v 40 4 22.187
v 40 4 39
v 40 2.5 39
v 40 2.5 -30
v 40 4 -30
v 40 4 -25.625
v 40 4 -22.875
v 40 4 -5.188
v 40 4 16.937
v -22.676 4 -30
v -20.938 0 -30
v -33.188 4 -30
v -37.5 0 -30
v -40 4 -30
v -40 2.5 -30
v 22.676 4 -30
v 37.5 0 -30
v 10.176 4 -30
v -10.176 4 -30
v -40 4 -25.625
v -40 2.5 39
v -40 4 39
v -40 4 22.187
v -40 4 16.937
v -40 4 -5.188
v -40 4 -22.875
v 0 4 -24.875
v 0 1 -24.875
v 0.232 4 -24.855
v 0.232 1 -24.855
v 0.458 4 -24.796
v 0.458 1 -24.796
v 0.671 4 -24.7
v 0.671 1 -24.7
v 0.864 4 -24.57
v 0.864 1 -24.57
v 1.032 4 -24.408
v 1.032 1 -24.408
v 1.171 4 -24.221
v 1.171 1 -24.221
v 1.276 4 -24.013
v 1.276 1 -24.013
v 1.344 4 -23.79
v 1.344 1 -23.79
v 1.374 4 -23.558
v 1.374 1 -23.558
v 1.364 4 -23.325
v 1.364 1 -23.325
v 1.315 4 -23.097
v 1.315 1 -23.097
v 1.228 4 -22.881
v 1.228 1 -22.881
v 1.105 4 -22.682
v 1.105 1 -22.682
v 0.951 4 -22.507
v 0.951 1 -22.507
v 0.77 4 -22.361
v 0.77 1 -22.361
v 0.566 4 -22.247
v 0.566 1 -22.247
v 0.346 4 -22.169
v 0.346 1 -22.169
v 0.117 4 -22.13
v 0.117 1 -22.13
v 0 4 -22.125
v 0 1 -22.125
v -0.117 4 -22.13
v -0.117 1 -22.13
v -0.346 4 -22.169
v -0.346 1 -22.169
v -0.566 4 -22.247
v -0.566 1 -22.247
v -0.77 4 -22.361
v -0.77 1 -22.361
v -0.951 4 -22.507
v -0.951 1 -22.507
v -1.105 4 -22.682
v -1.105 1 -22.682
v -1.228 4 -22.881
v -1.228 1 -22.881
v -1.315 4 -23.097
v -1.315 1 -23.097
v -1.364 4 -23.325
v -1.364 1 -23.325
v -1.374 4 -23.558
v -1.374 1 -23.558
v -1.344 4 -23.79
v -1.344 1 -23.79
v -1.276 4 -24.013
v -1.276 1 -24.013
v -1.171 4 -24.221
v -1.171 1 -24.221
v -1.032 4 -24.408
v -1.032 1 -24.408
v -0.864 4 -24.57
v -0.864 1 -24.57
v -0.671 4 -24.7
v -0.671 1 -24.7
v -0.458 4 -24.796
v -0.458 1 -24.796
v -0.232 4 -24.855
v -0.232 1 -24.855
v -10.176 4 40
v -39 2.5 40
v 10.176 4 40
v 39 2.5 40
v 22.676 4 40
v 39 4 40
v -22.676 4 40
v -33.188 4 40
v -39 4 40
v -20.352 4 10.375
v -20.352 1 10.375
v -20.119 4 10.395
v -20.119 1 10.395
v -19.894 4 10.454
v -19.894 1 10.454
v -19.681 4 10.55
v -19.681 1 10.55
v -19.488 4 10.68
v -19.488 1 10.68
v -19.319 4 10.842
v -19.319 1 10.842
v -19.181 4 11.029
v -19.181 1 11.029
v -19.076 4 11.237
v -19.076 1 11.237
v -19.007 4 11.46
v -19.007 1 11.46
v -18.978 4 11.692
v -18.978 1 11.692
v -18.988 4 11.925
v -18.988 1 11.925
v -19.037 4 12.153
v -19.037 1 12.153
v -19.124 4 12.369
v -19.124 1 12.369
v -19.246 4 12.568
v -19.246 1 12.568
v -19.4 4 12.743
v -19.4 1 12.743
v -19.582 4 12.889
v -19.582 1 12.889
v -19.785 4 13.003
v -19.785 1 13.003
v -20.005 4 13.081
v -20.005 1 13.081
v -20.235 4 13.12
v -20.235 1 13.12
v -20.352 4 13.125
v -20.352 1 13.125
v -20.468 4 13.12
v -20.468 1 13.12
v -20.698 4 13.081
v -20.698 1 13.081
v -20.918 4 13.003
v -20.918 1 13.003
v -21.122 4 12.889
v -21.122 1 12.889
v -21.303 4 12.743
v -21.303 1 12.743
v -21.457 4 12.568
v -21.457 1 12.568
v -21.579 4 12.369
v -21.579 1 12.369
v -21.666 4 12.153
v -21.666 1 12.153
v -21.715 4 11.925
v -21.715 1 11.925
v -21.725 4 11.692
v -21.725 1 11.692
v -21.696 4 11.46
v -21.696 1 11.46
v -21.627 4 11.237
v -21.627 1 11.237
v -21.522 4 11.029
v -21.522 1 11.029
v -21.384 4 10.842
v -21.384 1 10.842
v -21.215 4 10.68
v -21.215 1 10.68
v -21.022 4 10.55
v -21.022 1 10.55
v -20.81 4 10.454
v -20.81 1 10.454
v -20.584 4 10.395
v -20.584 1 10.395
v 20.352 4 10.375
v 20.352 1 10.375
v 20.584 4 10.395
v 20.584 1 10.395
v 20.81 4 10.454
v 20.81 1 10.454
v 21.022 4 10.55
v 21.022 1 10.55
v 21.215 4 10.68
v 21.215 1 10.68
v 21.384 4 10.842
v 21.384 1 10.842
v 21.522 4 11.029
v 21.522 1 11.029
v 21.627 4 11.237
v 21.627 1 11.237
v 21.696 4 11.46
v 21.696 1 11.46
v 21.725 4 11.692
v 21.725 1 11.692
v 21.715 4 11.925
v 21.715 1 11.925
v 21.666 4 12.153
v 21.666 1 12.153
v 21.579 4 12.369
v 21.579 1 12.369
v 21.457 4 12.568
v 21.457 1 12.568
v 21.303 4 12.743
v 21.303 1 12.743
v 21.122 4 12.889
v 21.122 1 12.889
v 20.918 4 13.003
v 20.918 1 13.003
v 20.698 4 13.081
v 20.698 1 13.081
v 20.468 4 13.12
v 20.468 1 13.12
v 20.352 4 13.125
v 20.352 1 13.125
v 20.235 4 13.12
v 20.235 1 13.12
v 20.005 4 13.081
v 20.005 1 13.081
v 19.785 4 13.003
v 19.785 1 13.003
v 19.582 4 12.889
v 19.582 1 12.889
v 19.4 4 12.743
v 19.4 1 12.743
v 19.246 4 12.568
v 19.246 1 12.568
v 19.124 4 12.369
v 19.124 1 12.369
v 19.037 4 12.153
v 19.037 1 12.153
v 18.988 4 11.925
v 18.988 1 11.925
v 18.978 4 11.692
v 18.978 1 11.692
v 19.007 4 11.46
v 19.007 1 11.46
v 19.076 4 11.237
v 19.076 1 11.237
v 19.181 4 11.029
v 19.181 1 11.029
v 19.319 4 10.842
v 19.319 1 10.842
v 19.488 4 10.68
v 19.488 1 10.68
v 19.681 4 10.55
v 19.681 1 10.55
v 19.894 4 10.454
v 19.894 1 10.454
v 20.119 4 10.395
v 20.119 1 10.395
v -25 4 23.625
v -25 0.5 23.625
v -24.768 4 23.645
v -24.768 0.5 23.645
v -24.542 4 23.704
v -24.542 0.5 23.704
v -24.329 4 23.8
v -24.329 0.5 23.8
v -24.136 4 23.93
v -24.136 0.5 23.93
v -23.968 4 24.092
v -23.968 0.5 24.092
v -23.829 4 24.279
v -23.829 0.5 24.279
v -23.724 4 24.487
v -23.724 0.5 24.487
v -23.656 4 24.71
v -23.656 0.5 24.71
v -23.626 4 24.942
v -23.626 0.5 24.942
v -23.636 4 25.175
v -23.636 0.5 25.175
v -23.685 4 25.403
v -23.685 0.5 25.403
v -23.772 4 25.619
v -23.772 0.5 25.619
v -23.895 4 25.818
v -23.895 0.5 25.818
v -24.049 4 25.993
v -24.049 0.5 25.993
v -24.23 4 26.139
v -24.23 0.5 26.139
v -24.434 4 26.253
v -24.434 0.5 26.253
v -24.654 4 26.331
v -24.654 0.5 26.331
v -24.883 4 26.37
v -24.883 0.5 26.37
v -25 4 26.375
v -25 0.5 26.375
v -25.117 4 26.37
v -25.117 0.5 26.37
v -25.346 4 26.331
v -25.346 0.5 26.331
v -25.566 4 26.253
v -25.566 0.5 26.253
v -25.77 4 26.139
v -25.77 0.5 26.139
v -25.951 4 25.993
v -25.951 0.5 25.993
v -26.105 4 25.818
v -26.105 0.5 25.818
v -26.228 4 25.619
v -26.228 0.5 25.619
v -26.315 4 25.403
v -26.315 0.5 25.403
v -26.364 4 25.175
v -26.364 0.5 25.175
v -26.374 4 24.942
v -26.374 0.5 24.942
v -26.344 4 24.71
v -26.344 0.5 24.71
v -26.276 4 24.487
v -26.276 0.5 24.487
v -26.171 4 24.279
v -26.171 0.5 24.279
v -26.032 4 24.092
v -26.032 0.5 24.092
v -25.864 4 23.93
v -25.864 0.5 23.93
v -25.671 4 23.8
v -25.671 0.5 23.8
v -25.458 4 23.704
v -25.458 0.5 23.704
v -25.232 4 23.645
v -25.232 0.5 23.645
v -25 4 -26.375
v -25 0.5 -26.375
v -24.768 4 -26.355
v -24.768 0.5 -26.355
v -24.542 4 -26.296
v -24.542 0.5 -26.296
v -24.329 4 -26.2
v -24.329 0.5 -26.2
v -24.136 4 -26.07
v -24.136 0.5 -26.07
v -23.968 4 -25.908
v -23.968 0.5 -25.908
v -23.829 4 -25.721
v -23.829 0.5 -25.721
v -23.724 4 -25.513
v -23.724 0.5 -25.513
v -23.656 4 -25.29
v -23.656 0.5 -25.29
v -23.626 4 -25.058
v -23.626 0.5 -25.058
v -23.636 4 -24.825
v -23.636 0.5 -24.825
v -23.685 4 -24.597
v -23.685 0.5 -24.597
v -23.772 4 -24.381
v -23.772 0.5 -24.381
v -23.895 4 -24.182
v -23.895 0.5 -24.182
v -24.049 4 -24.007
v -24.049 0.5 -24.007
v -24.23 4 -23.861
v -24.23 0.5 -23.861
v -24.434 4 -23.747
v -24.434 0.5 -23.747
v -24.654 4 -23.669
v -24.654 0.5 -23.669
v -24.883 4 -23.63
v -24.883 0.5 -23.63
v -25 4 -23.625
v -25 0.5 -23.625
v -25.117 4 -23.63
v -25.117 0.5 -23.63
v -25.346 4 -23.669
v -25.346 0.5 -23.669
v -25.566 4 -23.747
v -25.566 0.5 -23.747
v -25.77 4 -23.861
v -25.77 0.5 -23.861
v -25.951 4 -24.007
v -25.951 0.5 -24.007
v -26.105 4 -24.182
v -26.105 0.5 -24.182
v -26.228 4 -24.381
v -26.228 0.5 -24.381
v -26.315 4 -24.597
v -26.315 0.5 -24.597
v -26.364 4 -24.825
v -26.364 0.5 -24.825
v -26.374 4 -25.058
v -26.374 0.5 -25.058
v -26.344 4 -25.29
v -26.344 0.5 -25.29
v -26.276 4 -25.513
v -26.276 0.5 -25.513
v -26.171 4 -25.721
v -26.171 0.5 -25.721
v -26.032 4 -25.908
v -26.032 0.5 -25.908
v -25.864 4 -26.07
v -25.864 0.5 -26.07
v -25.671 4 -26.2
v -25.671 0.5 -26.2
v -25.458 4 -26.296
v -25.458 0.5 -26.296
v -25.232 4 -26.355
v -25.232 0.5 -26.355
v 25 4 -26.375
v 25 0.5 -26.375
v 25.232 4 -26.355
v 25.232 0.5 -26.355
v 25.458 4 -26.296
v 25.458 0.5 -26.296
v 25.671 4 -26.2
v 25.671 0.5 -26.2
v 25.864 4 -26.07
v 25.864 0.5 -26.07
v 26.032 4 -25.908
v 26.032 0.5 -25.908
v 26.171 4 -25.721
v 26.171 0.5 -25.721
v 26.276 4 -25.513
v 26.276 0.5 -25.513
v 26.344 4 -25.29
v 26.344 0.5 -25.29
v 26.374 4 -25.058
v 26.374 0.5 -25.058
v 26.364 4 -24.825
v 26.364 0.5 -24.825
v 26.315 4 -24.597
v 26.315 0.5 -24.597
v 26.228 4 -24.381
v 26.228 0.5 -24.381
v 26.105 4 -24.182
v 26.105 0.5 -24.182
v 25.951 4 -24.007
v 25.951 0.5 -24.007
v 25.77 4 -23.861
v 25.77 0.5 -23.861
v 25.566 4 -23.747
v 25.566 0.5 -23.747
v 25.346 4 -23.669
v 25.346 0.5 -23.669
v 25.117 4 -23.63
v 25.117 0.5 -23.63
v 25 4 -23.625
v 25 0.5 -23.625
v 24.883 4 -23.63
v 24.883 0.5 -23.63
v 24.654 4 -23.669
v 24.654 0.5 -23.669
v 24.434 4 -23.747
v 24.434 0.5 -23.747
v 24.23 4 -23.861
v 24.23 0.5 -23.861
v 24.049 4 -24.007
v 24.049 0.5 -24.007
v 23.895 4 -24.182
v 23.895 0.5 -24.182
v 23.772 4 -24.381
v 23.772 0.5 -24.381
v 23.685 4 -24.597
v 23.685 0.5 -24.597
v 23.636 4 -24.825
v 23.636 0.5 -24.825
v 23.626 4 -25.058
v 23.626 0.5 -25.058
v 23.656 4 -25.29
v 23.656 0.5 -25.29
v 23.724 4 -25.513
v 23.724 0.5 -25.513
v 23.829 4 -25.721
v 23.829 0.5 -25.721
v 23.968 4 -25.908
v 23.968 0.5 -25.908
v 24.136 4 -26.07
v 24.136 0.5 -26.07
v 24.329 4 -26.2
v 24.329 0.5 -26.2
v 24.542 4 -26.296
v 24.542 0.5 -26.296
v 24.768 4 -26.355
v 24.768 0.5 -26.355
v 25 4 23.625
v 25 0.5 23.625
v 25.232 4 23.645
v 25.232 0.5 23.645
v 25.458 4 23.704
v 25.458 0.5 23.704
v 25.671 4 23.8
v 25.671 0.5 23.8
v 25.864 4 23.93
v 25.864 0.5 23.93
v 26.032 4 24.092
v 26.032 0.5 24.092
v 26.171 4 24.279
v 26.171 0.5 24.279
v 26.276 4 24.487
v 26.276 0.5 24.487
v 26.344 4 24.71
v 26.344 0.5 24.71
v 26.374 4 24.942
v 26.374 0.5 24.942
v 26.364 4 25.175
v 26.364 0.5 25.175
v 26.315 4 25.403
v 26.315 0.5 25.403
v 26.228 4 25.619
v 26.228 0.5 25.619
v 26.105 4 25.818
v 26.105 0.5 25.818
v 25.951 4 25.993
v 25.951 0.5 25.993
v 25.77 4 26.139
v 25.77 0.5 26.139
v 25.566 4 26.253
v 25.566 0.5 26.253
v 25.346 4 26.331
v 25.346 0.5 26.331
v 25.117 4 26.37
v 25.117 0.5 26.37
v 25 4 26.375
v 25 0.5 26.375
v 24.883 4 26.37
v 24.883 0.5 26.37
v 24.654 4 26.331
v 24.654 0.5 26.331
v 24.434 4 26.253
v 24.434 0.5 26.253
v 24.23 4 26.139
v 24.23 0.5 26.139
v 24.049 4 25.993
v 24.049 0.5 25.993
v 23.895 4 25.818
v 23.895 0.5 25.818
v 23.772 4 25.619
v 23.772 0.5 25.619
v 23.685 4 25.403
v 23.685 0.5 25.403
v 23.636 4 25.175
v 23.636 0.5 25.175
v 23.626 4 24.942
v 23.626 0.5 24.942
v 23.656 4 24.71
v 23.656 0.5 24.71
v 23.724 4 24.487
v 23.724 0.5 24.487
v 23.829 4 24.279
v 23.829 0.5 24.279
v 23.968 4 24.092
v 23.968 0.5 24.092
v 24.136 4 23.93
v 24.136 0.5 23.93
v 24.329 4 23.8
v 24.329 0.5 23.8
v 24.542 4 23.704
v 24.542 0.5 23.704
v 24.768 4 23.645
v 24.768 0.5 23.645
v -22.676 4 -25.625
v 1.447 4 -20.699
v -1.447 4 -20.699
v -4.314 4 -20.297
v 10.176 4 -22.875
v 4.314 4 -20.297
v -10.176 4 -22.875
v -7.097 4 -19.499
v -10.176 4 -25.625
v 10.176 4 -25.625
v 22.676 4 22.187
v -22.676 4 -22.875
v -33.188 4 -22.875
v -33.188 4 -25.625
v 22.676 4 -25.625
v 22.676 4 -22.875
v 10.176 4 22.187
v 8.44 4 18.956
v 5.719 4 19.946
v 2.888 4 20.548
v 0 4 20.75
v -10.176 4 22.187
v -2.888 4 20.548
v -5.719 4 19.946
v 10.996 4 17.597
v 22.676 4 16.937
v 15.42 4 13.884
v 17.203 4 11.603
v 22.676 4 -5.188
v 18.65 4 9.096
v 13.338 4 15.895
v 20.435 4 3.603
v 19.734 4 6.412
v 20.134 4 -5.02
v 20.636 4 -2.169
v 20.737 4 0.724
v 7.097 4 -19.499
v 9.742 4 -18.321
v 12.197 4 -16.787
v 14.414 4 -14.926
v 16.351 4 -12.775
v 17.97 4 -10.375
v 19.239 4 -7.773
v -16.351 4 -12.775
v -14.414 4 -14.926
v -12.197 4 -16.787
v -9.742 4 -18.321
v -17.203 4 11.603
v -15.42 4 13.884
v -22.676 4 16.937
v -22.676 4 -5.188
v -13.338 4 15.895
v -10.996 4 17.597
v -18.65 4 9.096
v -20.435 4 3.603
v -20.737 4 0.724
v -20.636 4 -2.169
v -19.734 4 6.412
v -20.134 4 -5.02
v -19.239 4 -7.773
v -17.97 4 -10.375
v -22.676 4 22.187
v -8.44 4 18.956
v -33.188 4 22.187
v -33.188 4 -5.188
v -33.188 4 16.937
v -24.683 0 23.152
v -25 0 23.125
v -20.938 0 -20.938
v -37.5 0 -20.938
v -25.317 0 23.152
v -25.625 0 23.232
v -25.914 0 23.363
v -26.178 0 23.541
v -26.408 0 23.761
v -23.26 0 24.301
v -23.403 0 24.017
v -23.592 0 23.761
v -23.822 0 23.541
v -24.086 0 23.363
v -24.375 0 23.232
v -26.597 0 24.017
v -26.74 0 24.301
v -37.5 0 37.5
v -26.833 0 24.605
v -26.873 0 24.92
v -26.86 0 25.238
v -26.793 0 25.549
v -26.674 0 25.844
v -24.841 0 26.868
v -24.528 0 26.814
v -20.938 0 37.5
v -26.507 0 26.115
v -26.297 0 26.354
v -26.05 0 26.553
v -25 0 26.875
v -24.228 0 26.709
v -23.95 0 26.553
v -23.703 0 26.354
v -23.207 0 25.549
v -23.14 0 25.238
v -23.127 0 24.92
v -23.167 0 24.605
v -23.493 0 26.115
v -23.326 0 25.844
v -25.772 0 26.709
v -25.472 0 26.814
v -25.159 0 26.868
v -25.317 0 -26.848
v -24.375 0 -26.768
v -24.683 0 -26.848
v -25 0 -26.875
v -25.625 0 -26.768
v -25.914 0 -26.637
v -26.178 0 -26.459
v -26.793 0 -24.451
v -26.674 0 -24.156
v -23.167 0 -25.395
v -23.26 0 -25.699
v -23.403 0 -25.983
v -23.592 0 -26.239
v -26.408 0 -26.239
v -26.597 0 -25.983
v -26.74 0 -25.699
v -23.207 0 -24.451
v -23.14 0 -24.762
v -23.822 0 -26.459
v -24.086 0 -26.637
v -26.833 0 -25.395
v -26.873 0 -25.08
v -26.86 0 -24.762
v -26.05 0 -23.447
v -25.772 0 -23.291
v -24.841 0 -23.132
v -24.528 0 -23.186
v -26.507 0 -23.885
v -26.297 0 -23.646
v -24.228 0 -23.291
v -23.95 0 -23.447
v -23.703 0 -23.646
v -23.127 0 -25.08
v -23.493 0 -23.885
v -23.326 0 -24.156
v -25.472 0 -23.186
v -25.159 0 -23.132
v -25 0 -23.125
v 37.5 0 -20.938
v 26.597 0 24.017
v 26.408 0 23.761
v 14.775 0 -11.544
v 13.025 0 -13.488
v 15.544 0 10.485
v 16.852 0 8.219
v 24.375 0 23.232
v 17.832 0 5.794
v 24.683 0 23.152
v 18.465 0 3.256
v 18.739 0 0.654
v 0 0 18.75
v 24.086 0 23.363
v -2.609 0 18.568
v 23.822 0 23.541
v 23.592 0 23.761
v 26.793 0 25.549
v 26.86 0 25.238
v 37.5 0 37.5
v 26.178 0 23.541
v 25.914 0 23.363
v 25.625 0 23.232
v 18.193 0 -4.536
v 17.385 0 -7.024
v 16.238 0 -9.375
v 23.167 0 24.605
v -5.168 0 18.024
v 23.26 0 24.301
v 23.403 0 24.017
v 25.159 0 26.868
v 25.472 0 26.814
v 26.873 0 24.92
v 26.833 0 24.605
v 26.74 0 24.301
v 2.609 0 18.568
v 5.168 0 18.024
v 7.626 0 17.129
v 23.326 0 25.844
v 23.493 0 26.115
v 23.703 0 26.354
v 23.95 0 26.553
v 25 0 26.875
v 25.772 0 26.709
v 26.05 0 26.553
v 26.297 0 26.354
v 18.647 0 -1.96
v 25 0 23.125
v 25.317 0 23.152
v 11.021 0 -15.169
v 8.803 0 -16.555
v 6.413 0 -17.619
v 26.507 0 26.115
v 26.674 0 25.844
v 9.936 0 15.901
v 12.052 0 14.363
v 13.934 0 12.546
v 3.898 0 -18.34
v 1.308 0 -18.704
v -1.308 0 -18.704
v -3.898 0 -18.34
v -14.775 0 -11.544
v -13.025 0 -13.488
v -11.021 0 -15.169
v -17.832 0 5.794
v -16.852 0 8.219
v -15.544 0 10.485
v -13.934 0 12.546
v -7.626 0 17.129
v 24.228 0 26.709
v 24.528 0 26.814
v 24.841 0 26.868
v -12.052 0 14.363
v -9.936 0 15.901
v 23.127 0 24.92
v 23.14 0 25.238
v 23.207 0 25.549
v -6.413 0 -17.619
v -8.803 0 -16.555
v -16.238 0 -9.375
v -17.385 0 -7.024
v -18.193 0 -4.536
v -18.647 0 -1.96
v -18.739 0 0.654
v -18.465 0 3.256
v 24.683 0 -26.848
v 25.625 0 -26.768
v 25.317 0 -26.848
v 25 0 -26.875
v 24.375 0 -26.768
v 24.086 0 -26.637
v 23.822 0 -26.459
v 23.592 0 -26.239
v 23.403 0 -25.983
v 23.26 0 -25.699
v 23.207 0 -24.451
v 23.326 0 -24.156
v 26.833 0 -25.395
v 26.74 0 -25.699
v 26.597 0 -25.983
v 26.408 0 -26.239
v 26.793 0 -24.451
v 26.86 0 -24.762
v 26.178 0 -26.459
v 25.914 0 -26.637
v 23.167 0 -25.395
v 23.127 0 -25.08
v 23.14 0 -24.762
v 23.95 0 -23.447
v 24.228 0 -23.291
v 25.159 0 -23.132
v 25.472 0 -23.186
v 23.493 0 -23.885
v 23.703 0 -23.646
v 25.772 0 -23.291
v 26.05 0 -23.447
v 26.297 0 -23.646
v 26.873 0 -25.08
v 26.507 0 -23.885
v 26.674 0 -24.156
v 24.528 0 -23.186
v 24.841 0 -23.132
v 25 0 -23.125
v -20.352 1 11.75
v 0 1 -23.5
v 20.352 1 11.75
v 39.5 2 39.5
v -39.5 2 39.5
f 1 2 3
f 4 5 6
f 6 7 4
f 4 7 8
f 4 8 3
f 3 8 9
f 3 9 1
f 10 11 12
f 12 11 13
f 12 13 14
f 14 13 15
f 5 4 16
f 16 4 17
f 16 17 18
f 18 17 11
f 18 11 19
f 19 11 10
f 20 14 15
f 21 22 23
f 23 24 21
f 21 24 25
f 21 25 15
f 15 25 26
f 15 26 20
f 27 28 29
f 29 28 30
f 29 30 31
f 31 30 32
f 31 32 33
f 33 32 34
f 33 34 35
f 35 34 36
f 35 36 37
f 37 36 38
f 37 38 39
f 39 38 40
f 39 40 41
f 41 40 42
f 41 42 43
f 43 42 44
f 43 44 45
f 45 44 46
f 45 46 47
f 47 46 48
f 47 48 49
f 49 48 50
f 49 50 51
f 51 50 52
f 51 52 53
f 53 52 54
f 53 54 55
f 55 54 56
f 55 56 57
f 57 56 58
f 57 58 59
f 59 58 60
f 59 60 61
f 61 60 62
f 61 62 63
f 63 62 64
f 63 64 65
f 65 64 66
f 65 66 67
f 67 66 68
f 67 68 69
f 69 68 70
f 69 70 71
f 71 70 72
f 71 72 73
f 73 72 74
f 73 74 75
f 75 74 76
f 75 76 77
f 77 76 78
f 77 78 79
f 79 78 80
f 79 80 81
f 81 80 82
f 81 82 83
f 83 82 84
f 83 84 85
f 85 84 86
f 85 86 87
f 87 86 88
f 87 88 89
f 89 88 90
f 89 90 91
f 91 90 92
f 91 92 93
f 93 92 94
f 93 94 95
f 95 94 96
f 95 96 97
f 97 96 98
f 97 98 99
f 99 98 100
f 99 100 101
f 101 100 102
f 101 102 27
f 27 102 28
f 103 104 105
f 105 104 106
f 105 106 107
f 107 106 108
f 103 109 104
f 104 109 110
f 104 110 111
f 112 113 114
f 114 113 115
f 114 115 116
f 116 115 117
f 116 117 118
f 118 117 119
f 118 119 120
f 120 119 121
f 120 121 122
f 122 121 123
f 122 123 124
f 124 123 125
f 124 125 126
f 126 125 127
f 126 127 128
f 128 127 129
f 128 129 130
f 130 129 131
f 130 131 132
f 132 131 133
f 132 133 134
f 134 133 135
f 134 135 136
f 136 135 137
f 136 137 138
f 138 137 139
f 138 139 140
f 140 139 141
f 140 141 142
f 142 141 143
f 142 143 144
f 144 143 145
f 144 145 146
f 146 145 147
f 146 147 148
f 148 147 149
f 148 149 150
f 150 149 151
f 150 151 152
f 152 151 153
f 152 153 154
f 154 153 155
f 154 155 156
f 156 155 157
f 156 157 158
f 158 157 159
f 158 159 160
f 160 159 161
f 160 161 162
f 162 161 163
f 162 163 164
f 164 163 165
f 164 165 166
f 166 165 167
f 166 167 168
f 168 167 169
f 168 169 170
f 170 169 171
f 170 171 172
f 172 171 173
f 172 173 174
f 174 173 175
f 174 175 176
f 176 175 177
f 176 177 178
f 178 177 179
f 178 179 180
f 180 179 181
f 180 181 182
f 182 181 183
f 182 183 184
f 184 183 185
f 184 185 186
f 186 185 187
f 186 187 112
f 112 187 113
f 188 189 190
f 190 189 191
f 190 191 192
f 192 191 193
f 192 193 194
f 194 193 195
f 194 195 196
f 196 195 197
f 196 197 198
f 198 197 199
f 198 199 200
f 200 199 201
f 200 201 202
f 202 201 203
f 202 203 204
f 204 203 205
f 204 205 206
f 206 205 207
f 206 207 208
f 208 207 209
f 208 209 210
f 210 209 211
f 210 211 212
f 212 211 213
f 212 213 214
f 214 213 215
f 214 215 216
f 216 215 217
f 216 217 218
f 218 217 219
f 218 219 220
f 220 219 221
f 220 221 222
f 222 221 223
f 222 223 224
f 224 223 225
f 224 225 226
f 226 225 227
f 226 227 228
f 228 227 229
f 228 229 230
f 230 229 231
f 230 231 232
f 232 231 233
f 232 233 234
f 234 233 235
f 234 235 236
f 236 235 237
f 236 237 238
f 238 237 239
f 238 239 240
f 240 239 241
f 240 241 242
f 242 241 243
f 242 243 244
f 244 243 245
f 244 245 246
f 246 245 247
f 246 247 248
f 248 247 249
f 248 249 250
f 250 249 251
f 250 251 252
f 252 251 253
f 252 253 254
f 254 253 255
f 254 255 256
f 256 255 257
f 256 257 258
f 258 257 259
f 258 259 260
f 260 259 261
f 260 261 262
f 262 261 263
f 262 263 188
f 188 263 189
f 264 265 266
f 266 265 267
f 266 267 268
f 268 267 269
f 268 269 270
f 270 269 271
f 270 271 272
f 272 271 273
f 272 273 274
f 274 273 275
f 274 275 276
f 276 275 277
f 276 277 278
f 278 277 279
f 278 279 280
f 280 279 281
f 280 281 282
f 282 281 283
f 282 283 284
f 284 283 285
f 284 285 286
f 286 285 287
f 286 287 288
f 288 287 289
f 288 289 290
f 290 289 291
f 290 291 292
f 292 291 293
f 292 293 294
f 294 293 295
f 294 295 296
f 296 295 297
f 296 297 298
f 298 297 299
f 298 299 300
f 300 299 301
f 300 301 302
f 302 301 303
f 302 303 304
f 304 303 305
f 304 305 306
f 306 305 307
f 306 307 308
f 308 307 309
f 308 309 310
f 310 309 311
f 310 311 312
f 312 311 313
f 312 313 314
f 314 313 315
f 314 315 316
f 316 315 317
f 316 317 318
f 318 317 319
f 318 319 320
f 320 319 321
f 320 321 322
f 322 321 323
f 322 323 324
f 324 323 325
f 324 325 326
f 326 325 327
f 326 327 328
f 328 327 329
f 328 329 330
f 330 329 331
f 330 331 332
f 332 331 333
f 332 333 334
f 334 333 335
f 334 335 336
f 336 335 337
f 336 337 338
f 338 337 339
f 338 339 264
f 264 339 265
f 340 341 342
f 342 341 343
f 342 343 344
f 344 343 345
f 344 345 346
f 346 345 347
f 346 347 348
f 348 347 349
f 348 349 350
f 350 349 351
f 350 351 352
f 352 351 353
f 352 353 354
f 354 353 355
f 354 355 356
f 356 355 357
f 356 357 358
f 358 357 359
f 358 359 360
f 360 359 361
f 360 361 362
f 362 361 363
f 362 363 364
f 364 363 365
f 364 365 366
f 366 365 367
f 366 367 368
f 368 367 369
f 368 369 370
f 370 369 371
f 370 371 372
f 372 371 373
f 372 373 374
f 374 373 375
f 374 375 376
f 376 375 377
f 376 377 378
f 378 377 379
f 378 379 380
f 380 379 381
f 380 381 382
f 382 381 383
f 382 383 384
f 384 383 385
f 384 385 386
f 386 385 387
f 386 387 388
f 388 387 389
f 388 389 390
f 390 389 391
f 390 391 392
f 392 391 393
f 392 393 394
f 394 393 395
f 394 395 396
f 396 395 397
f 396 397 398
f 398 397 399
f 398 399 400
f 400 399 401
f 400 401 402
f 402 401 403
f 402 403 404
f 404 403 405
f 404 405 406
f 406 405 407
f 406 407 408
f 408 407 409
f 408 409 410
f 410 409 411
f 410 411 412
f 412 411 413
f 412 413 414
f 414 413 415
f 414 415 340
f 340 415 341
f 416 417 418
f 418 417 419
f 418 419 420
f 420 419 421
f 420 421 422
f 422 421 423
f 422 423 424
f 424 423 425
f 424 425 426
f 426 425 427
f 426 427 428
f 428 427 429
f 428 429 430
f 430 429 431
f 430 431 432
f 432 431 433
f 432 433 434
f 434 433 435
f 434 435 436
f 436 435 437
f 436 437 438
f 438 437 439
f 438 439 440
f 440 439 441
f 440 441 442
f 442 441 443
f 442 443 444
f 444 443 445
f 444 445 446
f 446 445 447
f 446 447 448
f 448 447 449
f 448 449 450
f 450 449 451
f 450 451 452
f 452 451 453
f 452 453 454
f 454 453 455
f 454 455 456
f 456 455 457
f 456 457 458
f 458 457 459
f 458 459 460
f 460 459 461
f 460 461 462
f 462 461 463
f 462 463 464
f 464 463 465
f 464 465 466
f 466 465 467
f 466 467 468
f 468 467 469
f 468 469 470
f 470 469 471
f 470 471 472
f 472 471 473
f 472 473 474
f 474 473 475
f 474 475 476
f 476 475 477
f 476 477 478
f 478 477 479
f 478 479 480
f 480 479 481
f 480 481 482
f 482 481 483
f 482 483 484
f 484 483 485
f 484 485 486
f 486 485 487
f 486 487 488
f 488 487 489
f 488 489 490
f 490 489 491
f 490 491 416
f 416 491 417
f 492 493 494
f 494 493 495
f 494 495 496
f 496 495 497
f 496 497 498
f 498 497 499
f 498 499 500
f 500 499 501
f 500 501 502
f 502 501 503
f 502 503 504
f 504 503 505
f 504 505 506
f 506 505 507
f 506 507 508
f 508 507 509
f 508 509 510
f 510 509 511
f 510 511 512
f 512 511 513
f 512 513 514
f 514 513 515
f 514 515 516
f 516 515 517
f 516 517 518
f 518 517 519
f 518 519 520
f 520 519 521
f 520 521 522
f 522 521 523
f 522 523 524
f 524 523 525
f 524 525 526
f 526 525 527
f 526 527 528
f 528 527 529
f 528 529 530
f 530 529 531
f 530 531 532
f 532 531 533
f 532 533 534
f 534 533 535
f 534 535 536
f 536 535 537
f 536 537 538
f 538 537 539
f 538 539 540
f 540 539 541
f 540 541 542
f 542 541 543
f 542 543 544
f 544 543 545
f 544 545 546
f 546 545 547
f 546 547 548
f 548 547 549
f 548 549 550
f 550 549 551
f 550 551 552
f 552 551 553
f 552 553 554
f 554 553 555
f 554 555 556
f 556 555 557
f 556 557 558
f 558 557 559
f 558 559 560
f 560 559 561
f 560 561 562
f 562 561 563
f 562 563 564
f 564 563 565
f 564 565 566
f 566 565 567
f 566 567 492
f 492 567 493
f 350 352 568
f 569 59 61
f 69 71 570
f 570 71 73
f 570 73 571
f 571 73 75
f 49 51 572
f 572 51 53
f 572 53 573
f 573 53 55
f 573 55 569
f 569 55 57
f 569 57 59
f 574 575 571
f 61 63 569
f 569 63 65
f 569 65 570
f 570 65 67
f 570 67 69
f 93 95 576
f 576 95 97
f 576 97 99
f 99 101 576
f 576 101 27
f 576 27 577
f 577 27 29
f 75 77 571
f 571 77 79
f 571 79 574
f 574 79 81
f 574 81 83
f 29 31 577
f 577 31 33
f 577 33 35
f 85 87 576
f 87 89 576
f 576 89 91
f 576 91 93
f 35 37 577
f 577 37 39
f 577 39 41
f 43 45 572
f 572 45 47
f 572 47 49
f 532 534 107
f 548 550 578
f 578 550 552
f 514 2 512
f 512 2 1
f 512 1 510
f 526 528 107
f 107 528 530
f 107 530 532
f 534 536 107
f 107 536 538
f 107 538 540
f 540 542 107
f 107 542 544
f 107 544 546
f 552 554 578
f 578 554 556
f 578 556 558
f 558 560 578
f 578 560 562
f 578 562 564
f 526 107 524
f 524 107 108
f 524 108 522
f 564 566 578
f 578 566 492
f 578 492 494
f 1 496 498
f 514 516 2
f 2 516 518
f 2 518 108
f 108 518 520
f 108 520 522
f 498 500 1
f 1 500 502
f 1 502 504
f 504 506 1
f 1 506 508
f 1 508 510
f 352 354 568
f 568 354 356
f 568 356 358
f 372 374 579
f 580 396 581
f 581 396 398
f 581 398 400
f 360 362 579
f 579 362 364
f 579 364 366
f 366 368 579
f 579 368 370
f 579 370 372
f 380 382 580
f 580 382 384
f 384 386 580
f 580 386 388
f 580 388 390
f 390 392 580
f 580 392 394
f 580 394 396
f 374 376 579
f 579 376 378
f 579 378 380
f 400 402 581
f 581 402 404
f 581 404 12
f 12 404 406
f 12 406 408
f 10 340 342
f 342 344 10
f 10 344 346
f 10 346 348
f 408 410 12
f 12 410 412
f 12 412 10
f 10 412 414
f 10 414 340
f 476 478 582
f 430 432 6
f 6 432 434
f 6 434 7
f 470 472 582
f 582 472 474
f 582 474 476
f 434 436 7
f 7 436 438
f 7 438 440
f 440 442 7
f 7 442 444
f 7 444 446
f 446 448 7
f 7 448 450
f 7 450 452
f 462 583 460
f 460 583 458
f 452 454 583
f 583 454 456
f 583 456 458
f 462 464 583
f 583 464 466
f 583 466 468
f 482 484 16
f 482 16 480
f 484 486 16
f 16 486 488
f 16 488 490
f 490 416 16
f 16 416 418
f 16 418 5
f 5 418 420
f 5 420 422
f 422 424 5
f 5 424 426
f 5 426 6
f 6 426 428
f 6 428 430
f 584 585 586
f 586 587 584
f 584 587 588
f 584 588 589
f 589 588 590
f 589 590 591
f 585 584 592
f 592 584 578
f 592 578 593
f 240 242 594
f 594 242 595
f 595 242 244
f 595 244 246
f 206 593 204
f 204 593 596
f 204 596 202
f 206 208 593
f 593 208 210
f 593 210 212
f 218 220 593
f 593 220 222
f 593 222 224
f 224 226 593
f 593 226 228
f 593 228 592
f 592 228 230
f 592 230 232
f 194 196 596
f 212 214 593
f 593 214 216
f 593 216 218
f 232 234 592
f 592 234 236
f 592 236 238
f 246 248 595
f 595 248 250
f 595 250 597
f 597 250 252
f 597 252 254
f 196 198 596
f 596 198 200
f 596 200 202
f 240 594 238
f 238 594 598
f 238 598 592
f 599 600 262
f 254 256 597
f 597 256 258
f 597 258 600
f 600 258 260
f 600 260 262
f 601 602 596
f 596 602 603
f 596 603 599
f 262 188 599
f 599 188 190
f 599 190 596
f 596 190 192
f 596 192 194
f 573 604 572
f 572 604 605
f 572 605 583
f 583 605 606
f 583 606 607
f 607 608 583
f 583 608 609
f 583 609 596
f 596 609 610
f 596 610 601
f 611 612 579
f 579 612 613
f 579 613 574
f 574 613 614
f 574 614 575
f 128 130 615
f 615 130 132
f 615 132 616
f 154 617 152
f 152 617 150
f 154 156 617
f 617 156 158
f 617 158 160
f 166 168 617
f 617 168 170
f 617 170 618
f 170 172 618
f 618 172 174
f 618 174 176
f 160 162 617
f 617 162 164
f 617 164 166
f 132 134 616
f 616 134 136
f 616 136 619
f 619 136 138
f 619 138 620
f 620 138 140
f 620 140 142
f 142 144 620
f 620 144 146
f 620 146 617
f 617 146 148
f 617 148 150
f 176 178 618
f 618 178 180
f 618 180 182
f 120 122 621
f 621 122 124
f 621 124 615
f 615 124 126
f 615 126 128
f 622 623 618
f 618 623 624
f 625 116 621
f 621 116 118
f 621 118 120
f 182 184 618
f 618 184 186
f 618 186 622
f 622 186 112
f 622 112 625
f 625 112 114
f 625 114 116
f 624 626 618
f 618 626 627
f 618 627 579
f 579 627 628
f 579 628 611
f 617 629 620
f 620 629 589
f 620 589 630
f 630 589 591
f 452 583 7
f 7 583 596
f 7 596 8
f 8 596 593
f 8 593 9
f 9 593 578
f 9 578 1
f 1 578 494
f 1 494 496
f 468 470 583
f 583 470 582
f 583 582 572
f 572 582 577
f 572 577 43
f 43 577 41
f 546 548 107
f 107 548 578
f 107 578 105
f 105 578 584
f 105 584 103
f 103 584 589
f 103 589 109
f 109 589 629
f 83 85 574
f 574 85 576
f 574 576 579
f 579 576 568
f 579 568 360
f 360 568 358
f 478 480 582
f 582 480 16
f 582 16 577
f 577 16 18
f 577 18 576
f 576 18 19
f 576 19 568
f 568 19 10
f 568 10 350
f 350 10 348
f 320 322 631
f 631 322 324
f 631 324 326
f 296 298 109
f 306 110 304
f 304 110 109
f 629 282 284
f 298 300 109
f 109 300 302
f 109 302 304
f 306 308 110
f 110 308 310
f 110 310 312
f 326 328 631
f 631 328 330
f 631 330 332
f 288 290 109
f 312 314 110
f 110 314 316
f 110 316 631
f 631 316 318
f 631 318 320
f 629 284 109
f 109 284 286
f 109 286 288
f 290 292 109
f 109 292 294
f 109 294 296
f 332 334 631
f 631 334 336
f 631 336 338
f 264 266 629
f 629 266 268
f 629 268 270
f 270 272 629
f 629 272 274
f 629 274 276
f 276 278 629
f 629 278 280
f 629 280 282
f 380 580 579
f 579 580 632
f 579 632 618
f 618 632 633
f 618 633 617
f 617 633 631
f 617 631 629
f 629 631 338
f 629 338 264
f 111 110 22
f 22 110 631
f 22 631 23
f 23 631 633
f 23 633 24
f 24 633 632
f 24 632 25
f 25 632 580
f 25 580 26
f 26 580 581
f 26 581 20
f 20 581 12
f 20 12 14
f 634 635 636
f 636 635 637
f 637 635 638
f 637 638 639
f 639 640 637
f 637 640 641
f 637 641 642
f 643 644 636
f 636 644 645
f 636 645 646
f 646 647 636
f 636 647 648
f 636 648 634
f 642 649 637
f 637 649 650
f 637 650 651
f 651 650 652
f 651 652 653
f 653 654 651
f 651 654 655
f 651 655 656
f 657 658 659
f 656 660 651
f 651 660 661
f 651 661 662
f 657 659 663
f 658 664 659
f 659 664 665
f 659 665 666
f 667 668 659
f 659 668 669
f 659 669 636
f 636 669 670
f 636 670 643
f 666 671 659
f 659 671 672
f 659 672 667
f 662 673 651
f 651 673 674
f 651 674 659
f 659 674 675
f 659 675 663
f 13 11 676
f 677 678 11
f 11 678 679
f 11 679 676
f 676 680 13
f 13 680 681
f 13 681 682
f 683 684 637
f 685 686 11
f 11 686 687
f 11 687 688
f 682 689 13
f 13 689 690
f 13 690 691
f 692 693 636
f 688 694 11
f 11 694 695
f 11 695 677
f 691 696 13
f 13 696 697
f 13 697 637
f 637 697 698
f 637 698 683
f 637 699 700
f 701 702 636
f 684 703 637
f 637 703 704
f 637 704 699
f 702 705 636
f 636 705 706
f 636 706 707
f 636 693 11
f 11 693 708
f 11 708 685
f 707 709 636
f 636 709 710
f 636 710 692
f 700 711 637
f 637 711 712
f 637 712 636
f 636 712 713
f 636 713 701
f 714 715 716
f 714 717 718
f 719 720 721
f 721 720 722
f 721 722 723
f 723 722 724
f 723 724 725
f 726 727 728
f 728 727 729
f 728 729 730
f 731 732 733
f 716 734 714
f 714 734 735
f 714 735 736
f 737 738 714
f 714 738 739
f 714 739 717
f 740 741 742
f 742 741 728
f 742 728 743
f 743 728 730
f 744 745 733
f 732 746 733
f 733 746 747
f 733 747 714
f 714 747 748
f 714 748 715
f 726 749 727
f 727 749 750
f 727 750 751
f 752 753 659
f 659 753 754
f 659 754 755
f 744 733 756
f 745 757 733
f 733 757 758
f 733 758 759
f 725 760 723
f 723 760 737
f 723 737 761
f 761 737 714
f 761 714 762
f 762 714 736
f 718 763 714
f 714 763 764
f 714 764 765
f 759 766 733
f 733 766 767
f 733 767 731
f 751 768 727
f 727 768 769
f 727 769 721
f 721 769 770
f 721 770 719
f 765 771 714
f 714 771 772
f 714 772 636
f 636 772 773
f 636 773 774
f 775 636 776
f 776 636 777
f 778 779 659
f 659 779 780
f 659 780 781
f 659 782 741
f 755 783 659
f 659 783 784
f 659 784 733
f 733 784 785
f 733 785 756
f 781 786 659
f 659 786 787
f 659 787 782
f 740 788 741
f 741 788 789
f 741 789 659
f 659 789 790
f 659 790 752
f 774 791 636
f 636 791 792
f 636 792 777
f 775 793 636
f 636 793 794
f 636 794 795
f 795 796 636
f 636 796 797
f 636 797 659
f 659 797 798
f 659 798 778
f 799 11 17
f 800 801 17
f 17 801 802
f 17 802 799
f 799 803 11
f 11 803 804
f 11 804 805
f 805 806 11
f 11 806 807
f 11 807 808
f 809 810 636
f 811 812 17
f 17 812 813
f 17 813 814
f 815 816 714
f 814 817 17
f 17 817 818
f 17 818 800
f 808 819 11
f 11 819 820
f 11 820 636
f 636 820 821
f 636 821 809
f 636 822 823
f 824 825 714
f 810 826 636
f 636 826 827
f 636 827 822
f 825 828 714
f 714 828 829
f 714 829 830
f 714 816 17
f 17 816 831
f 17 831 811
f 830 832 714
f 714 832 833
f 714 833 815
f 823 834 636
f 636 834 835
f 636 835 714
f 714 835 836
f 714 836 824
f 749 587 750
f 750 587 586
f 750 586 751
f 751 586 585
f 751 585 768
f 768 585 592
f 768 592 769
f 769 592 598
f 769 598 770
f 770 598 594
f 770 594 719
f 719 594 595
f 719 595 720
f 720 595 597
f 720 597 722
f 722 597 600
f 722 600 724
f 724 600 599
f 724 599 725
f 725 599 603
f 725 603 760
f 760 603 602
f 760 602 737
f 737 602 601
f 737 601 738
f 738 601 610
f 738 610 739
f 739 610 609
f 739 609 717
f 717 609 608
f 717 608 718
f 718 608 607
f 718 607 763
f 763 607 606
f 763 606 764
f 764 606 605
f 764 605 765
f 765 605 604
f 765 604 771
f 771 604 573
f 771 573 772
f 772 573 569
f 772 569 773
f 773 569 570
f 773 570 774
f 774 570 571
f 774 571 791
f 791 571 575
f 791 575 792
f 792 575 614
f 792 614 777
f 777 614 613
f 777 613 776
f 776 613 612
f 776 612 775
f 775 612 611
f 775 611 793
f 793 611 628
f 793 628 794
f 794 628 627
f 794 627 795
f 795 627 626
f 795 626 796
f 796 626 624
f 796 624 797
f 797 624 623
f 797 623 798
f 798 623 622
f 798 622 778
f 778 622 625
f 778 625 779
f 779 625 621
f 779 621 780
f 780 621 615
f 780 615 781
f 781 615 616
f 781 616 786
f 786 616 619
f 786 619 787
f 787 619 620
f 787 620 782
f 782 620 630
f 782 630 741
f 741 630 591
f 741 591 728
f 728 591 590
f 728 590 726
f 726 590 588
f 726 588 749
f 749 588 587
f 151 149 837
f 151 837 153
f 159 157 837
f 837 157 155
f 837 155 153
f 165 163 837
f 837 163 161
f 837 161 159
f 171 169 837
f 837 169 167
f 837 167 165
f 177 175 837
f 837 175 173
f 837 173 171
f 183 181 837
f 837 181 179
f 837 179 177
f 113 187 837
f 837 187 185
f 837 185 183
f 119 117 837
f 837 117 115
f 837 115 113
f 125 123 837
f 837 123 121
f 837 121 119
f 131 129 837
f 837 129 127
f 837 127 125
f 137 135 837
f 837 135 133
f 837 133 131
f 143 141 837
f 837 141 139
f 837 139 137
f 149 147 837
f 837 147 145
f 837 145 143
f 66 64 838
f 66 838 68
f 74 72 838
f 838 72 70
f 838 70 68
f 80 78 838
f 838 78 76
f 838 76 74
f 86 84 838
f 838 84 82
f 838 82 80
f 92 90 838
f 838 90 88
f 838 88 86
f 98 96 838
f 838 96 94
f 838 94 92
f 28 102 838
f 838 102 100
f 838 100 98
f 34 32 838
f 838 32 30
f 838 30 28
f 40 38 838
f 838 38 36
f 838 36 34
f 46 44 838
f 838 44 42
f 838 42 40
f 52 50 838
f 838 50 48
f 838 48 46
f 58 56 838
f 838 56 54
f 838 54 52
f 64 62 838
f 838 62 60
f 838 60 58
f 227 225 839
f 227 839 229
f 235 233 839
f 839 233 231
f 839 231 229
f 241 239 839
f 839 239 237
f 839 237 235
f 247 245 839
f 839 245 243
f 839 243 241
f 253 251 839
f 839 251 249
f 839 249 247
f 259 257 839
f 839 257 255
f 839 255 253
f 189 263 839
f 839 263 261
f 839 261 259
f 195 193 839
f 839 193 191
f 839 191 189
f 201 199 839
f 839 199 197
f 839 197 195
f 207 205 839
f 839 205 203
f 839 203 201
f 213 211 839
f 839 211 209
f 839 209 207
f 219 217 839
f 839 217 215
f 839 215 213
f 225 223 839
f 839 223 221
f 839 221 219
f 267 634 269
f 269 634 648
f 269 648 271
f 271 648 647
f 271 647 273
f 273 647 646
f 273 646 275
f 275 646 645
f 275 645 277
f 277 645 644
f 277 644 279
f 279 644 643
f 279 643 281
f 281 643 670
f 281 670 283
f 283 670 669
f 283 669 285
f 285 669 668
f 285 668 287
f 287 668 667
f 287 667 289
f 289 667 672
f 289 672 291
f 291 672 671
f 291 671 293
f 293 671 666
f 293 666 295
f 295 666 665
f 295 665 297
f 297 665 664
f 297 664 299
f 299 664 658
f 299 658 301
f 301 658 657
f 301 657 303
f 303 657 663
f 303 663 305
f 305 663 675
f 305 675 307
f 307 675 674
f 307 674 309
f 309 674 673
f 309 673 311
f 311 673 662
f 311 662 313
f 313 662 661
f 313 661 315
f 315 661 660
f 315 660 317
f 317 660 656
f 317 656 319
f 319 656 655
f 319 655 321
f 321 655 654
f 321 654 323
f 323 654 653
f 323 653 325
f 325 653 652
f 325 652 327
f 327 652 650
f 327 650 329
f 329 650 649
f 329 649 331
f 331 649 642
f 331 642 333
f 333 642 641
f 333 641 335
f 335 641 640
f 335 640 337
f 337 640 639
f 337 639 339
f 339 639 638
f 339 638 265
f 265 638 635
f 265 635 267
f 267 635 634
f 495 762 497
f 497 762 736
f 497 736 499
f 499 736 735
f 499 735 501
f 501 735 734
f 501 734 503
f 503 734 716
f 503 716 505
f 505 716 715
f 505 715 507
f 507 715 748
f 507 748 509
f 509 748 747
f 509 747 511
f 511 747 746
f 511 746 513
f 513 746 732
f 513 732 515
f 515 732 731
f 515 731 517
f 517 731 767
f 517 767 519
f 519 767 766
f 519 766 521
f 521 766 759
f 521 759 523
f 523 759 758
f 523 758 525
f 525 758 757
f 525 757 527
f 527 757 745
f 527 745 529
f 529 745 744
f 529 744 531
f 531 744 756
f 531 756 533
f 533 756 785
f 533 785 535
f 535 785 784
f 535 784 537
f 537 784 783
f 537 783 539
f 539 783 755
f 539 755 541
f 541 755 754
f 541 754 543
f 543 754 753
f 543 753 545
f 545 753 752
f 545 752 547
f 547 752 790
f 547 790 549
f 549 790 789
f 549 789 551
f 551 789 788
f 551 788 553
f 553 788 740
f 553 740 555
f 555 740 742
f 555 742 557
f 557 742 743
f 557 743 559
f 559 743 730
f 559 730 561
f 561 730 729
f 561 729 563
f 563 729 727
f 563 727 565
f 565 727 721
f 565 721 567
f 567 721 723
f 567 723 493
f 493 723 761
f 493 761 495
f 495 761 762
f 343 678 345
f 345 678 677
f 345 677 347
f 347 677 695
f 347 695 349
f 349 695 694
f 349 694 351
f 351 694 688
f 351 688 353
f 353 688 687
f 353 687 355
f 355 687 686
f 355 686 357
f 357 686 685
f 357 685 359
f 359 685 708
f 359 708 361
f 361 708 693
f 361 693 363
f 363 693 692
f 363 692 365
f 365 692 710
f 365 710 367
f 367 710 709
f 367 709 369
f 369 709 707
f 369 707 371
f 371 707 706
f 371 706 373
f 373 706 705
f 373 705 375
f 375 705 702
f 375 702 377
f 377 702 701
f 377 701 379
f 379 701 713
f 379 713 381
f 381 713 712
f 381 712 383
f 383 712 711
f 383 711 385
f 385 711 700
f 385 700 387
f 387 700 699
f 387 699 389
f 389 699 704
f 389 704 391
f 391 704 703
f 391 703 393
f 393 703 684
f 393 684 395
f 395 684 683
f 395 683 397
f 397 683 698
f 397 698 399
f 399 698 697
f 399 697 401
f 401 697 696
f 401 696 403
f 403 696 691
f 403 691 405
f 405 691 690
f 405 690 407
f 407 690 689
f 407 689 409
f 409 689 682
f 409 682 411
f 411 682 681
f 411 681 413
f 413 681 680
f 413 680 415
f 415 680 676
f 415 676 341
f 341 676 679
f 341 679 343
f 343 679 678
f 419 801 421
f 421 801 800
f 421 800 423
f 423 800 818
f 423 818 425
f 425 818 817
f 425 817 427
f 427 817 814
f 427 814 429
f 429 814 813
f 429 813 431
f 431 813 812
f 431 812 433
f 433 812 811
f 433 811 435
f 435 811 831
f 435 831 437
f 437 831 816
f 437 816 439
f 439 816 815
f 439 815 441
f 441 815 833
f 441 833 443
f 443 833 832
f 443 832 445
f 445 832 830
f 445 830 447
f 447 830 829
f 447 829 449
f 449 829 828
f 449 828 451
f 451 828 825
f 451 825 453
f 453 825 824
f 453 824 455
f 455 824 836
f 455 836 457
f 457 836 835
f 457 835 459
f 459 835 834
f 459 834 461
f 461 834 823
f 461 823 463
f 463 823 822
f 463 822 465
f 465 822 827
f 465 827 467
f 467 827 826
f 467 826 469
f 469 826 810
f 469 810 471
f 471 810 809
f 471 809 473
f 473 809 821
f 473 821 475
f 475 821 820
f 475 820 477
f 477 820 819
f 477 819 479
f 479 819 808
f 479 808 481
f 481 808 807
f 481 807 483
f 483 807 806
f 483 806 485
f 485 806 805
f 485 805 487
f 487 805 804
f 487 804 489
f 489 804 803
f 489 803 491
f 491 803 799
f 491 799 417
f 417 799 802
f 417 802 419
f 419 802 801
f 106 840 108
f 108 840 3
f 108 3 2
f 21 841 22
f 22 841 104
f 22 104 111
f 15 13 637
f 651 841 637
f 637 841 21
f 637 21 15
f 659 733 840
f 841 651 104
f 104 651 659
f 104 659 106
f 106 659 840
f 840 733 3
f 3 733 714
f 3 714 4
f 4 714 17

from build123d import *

# Parameters (mm, degrees)
SKETCH1_R           = 18.75
SKETCH1_W           = 80
SKETCH1_H           = 10
BOSS_EXTRUDE2_DEPTH = 4
CHAMFER2_SIZE2      = 4
CHAMFER2_SIZE       = 2
SKETCH1_3_R         = 1.375
BOSS_EXTRUDE3_DEPTH = 1
CHAMFER3_SIZE       = 0.5
CHAMFER4_SIZE       = 1
CHAMFER5_SIZE       = 2.5


# Some blends are built 0.0001 mm under size
with BuildPart() as part:
    # Sketch1 → Boss-Extrude2 (new body)
    # profile 1 of 2: a face of its own
    with BuildSketch(Plane(origin=(0, 0, 0), x_dir=(1, 0, 0), z_dir=(0, 1, 0))):
        Polygon((-25, 30), (-40, 30), (-40, -30), (40, -30), (40, 30), (25, 30), align=None)
        with BuildLine():
            ThreePointArc((-23.625, -25), (-25.972271824, -25.972271824), (-25, -23.625))
            ThreePointArc((-25, -23.625), (-24.027728176, -24.027728176), (-23.625, -25))
        make_face(mode=Mode.SUBTRACT)
        with BuildLine():
            ThreePointArc((-19.629554465, -12.920162208), (-21.542381919, -12.4375), (-21.003965926, -10.539611728))
            ThreePointArc((-21.003965926, -10.539611728), (-19.646750299, -10.569400091), (-18.976596989, -11.75))
            ThreePointArc((-18.976596989, -11.75), (-19.150881896, -12.420006168), (-19.629554465, -12.920162208))
        make_face(mode=Mode.SUBTRACT)
        with BuildLine():
            ThreePointArc((26.375, -25), (24.027728176, -25.972271824), (25, -23.625))
            ThreePointArc((25, -23.625), (25.972271824, -24.027728176), (26.375, -25))
        make_face(mode=Mode.SUBTRACT)
        with BuildLine():
            ThreePointArc((21.726596989, -11.75), (21.021603157, -12.950715093), (19.629554465, -12.920162208))
            ThreePointArc((19.629554465, -12.920162208), (19.681590821, -10.549284907), (21.726596989, -11.75))
        make_face(mode=Mode.SUBTRACT)
        with BuildLine():
            ThreePointArc((-25, 23.625), (-26.375, 25), (-25, 26.375))
            ThreePointArc((-25, 26.375), (-24.027728176, 25.972271824), (-23.625, 25))
            ThreePointArc((-23.625, 25), (-24.027728176, 24.027728176), (-25, 23.625))
        make_face(mode=Mode.SUBTRACT)
        with Locations(Location((0, 0, 0), (0, 0, 270))):
            Circle(SKETCH1_R, mode=Mode.SUBTRACT)
        with BuildLine():
            ThreePointArc((1.375, 23.5), (0.020115184, 22.125147143), (-1.374411461, 23.459773936))
            ThreePointArc((-1.374411461, 23.459773936), (-0.020115184, 24.874852857), (1.375, 23.5))
        make_face(mode=Mode.SUBTRACT)
        with BuildLine():
            ThreePointArc((25, 23.625), (23.625, 25), (25, 26.375))
            ThreePointArc((25, 26.375), (25.972271824, 25.972271824), (26.375, 25))
            ThreePointArc((26.375, 25), (25.972271824, 24.027728176), (25, 23.625))
        make_face(mode=Mode.SUBTRACT)
    # profile 2 of 2: a face of its own
    with BuildSketch(Plane(origin=(0, 0, 0), x_dir=(1, 0, 0), z_dir=(0, 1, 0))):
        with Locations((0, -35)):
            Rectangle(SKETCH1_W, SKETCH1_H)
    extrude(amount=BOSS_EXTRUDE2_DEPTH)

    # Chamfer2
    chamfer2_edges = [part.edges().sort_by_distance(p)[0] for p in [
        (0, 4, -18.75),
    ]]
    chamfer2_side = [part.faces().sort_by_distance(p)[0] for p in [
        (0, 4, -18.79),
    ]]
    chamfer(chamfer2_edges, length=CHAMFER2_SIZE - 0.0001, length2=CHAMFER2_SIZE2 - 0.0001, reference=chamfer2_side[0])  # a hair under: the kernel refuses the full size

    # Sketch1<3> → Boss-Extrude3 (add)
    with BuildSketch(Plane(origin=(0, 0, 0), x_dir=(1, 0, 0), z_dir=(0, 1, 0))):
        with Locations(Location((0, 23.5, 0), (0, 0, 270))):
            Circle(SKETCH1_3_R)
        with Locations(Location((20.351596989, -11.75, 0), (0, 0, 270))):
            Circle(SKETCH1_3_R)
        with Locations(Location((-20.351596989, -11.75, 0), (0, 0, 270))):
            Circle(SKETCH1_3_R)
    extrude(amount=BOSS_EXTRUDE3_DEPTH)

    # Chamfer3
    chamfer3_edges = [part.edges().sort_by_distance(p)[0] for p in [
        (-25, 0, 26.375),
        (-26.375, 0, -25),
        (23.625, 0, -25),
        (25, 0, 26.375),
    ]]
    chamfer(chamfer3_edges, length=CHAMFER3_SIZE)

    # Chamfer4
    chamfer4_edges = [part.edges().sort_by_distance(p)[0] for p in [
        (40, 2, 40),
        (-40, 2, 40),
    ]]
    chamfer(chamfer4_edges, length=CHAMFER4_SIZE)

    # Chamfer5
    # the kernel refuses this chamfer: 2.5 mm, written as the material it takes off along each edge
    with BuildSketch(Plane(origin=(40, 0, -36.42920747), x_dir=(0.0274958766105877, 0.9996219169112968, 0), z_dir=(0, 0, 1))) as chamfer5_piece_1:
        Polygon((CHAMFER5_SIZE * 0.999621916911, CHAMFER5_SIZE * 0.0274958766106), (-CHAMFER5_SIZE * 0.0274958766106, CHAMFER5_SIZE * 0.999621916911), (0, 0), align=None)
    extrude(amount=81.85841494, mode=Mode.SUBTRACT)
    with BuildSketch(Plane(origin=(-45.42920747, 0, 40), x_dir=(0, 0.9996219169112968, 0.0274958766105877), z_dir=(1, 0, 0))) as chamfer5_piece_2:
        Polygon((CHAMFER5_SIZE * 0.999621916911, -CHAMFER5_SIZE * 0.0274958766106), (-CHAMFER5_SIZE * 0.0274958766106, -CHAMFER5_SIZE * 0.999621916911), (0, 0), align=None)
    extrude(amount=90.85841494, mode=Mode.SUBTRACT)
    with BuildSketch(Plane(origin=(-40, 0, -36.42920747), x_dir=(-0.0274958766105877, 0.9996219169112968, 0), z_dir=(0, 0, 1))) as chamfer5_piece_3:
        Polygon((CHAMFER5_SIZE * 0.999621916911, -CHAMFER5_SIZE * 0.0274958766106), (-CHAMFER5_SIZE * 0.0274958766106, -CHAMFER5_SIZE * 0.999621916911), (0, 0), align=None)
    extrude(amount=81.85841494, mode=Mode.SUBTRACT)


solid = part.part
